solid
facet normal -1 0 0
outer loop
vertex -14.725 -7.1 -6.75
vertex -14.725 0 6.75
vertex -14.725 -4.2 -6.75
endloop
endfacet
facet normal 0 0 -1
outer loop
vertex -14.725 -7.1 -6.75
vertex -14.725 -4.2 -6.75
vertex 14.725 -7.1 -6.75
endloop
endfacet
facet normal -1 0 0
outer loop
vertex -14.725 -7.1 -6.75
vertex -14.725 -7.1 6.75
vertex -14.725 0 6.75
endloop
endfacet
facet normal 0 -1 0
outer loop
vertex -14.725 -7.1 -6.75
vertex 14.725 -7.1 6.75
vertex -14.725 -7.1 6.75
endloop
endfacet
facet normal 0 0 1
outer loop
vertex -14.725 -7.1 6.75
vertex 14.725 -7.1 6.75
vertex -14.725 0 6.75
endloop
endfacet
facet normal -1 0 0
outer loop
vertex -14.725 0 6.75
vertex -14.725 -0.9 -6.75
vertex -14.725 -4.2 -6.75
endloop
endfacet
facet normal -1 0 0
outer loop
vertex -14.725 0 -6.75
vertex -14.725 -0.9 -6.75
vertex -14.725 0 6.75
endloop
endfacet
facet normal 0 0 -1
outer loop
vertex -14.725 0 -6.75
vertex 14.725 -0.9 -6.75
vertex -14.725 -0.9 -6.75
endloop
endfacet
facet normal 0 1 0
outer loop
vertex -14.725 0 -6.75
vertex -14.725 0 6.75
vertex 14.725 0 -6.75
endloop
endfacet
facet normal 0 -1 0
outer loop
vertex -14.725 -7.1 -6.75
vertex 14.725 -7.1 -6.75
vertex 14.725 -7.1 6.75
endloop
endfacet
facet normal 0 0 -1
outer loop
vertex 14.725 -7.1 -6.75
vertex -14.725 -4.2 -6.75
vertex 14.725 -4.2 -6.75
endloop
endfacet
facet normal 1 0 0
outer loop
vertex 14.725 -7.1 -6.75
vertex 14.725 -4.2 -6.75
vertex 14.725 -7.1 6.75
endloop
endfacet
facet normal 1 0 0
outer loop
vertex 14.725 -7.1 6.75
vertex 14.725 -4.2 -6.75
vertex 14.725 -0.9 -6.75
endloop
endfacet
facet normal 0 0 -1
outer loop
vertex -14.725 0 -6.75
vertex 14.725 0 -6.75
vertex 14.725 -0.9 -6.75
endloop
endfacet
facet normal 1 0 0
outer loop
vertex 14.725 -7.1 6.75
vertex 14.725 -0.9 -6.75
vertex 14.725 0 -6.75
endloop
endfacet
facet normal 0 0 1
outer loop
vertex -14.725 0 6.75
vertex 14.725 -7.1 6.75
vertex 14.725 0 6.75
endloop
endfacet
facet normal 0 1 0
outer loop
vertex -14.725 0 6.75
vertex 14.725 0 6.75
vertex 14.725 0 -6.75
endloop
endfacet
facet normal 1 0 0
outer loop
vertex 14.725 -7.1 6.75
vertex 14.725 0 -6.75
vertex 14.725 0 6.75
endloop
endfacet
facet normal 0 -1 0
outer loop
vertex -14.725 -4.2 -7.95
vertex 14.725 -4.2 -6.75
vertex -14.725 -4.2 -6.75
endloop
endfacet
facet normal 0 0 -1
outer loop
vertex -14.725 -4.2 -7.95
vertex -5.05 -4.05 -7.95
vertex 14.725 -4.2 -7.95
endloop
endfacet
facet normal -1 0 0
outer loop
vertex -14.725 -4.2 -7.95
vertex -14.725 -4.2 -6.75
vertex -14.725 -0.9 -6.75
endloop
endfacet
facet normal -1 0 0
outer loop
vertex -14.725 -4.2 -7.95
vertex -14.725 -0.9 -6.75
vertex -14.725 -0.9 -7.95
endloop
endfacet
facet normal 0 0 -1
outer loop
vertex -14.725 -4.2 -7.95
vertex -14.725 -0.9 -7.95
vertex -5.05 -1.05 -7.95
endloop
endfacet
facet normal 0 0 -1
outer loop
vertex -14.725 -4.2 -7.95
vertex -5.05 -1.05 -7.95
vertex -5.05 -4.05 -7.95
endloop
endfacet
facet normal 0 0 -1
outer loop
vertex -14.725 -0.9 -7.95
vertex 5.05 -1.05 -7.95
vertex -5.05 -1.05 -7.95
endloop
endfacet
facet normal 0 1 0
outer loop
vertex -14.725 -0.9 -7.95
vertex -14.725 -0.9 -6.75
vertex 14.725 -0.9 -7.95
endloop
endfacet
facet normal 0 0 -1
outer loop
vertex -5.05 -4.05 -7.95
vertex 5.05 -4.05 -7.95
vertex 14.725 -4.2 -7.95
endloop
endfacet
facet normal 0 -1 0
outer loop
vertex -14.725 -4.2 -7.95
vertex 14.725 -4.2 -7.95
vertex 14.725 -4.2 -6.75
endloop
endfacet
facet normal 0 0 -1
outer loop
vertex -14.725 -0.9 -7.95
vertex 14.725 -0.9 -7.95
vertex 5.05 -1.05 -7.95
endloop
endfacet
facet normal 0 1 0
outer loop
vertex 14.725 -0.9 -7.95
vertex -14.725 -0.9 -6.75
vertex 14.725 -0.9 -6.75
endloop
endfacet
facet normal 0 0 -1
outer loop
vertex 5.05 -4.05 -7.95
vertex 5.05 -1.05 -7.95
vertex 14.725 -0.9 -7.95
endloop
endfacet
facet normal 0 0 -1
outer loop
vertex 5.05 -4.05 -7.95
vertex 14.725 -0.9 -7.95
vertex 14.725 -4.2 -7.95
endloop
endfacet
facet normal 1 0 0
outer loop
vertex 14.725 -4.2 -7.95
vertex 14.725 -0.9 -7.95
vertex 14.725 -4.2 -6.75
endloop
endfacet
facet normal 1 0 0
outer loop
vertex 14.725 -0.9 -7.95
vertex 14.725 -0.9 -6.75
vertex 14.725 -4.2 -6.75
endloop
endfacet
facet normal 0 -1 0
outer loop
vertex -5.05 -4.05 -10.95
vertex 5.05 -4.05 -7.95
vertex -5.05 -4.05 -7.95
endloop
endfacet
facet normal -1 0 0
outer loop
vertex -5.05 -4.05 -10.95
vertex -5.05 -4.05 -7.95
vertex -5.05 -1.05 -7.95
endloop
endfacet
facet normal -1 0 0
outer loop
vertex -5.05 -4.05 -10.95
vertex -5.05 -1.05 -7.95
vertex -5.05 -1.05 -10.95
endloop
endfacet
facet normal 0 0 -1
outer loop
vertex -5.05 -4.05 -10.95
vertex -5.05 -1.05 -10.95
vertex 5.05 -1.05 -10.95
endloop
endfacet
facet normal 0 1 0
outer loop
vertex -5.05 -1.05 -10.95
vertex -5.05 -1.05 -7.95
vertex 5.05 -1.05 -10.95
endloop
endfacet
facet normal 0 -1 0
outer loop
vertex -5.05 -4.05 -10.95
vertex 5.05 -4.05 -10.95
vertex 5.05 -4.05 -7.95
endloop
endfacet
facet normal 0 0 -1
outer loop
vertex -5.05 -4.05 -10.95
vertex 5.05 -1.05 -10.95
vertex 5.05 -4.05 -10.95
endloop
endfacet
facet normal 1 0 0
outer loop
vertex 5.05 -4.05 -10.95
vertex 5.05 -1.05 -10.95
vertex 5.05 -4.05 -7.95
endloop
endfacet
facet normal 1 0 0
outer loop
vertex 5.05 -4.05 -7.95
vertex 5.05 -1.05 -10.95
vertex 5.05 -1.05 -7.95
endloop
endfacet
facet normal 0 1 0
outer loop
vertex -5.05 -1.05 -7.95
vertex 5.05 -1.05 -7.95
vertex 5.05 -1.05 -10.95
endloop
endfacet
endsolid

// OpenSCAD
// GP2Y0D413K0F Sensor Model
// Coordinate System: Origin is center of the main body
// +Y: Forward (Lens direction), +Z: Up, +X: Right

$fn = 32;

module GP2Y0D413K0F() {
    // Dimensions
    main_w = 29.45;
    main_h = 13.5;
    main_d = 7.1; // Thickness of the main body block
    
    lens_case_w = 20.8;
    lens_case_h = 8.4;
    lens_case_d = 2.0;
    
    pwb_w = 29.45;
    pwb_h = 3.3;
    pwb_d = 1.2;
    
    // 1. Main body case
    color("gray")
    translate([0, -main_d/2, 0])
        cube([main_w, main_d, main_h], center = true);
    
    // 2. Lens case
    color("black")
    translate([0, -main_d/2 - lens_case_d/2, 0])
        cube([lens_case_w, lens_case_d, lens_case_h], center = true);
        
    // 3. Lenses
    // Light emitter (Left, center is -7.6 from center of unit)
    // Based on drawing: center to emitter = 4.5 from left edge? 
    // Actually, center is (-29.45/2 + 4.5) = -10.225 from center
    color("darkgray")
    translate([-10.225, -main_d/2 - lens_case_d, 0])
        rotate([90, 0, 0])
        cylinder(r = 2.5, h = 0.5);
        
    // Light detector (Right, center is 19.7 from emitter center)
    color("darkgray")
    translate([-10.225 + 19.7, -main_d/2 - lens_case_d, 0])
        cube([4.0, 0.5, 3.0], center = true);
        
    // 4. PWB
    color("green")
    translate([0, -main_d/2 + 1.0, -main_h/2 - pwb_d/2])
        cube([pwb_w, pwb_h, pwb_d], center = true);
        
    // 5. Connector
    color("white")
    translate([0, -main_d/2 + 1.0, -main_h/2 - pwb_d - 1.5])
        cube([10.1, 3.0, 3.0], center = true);
}

GP2Y0D413K0F();
